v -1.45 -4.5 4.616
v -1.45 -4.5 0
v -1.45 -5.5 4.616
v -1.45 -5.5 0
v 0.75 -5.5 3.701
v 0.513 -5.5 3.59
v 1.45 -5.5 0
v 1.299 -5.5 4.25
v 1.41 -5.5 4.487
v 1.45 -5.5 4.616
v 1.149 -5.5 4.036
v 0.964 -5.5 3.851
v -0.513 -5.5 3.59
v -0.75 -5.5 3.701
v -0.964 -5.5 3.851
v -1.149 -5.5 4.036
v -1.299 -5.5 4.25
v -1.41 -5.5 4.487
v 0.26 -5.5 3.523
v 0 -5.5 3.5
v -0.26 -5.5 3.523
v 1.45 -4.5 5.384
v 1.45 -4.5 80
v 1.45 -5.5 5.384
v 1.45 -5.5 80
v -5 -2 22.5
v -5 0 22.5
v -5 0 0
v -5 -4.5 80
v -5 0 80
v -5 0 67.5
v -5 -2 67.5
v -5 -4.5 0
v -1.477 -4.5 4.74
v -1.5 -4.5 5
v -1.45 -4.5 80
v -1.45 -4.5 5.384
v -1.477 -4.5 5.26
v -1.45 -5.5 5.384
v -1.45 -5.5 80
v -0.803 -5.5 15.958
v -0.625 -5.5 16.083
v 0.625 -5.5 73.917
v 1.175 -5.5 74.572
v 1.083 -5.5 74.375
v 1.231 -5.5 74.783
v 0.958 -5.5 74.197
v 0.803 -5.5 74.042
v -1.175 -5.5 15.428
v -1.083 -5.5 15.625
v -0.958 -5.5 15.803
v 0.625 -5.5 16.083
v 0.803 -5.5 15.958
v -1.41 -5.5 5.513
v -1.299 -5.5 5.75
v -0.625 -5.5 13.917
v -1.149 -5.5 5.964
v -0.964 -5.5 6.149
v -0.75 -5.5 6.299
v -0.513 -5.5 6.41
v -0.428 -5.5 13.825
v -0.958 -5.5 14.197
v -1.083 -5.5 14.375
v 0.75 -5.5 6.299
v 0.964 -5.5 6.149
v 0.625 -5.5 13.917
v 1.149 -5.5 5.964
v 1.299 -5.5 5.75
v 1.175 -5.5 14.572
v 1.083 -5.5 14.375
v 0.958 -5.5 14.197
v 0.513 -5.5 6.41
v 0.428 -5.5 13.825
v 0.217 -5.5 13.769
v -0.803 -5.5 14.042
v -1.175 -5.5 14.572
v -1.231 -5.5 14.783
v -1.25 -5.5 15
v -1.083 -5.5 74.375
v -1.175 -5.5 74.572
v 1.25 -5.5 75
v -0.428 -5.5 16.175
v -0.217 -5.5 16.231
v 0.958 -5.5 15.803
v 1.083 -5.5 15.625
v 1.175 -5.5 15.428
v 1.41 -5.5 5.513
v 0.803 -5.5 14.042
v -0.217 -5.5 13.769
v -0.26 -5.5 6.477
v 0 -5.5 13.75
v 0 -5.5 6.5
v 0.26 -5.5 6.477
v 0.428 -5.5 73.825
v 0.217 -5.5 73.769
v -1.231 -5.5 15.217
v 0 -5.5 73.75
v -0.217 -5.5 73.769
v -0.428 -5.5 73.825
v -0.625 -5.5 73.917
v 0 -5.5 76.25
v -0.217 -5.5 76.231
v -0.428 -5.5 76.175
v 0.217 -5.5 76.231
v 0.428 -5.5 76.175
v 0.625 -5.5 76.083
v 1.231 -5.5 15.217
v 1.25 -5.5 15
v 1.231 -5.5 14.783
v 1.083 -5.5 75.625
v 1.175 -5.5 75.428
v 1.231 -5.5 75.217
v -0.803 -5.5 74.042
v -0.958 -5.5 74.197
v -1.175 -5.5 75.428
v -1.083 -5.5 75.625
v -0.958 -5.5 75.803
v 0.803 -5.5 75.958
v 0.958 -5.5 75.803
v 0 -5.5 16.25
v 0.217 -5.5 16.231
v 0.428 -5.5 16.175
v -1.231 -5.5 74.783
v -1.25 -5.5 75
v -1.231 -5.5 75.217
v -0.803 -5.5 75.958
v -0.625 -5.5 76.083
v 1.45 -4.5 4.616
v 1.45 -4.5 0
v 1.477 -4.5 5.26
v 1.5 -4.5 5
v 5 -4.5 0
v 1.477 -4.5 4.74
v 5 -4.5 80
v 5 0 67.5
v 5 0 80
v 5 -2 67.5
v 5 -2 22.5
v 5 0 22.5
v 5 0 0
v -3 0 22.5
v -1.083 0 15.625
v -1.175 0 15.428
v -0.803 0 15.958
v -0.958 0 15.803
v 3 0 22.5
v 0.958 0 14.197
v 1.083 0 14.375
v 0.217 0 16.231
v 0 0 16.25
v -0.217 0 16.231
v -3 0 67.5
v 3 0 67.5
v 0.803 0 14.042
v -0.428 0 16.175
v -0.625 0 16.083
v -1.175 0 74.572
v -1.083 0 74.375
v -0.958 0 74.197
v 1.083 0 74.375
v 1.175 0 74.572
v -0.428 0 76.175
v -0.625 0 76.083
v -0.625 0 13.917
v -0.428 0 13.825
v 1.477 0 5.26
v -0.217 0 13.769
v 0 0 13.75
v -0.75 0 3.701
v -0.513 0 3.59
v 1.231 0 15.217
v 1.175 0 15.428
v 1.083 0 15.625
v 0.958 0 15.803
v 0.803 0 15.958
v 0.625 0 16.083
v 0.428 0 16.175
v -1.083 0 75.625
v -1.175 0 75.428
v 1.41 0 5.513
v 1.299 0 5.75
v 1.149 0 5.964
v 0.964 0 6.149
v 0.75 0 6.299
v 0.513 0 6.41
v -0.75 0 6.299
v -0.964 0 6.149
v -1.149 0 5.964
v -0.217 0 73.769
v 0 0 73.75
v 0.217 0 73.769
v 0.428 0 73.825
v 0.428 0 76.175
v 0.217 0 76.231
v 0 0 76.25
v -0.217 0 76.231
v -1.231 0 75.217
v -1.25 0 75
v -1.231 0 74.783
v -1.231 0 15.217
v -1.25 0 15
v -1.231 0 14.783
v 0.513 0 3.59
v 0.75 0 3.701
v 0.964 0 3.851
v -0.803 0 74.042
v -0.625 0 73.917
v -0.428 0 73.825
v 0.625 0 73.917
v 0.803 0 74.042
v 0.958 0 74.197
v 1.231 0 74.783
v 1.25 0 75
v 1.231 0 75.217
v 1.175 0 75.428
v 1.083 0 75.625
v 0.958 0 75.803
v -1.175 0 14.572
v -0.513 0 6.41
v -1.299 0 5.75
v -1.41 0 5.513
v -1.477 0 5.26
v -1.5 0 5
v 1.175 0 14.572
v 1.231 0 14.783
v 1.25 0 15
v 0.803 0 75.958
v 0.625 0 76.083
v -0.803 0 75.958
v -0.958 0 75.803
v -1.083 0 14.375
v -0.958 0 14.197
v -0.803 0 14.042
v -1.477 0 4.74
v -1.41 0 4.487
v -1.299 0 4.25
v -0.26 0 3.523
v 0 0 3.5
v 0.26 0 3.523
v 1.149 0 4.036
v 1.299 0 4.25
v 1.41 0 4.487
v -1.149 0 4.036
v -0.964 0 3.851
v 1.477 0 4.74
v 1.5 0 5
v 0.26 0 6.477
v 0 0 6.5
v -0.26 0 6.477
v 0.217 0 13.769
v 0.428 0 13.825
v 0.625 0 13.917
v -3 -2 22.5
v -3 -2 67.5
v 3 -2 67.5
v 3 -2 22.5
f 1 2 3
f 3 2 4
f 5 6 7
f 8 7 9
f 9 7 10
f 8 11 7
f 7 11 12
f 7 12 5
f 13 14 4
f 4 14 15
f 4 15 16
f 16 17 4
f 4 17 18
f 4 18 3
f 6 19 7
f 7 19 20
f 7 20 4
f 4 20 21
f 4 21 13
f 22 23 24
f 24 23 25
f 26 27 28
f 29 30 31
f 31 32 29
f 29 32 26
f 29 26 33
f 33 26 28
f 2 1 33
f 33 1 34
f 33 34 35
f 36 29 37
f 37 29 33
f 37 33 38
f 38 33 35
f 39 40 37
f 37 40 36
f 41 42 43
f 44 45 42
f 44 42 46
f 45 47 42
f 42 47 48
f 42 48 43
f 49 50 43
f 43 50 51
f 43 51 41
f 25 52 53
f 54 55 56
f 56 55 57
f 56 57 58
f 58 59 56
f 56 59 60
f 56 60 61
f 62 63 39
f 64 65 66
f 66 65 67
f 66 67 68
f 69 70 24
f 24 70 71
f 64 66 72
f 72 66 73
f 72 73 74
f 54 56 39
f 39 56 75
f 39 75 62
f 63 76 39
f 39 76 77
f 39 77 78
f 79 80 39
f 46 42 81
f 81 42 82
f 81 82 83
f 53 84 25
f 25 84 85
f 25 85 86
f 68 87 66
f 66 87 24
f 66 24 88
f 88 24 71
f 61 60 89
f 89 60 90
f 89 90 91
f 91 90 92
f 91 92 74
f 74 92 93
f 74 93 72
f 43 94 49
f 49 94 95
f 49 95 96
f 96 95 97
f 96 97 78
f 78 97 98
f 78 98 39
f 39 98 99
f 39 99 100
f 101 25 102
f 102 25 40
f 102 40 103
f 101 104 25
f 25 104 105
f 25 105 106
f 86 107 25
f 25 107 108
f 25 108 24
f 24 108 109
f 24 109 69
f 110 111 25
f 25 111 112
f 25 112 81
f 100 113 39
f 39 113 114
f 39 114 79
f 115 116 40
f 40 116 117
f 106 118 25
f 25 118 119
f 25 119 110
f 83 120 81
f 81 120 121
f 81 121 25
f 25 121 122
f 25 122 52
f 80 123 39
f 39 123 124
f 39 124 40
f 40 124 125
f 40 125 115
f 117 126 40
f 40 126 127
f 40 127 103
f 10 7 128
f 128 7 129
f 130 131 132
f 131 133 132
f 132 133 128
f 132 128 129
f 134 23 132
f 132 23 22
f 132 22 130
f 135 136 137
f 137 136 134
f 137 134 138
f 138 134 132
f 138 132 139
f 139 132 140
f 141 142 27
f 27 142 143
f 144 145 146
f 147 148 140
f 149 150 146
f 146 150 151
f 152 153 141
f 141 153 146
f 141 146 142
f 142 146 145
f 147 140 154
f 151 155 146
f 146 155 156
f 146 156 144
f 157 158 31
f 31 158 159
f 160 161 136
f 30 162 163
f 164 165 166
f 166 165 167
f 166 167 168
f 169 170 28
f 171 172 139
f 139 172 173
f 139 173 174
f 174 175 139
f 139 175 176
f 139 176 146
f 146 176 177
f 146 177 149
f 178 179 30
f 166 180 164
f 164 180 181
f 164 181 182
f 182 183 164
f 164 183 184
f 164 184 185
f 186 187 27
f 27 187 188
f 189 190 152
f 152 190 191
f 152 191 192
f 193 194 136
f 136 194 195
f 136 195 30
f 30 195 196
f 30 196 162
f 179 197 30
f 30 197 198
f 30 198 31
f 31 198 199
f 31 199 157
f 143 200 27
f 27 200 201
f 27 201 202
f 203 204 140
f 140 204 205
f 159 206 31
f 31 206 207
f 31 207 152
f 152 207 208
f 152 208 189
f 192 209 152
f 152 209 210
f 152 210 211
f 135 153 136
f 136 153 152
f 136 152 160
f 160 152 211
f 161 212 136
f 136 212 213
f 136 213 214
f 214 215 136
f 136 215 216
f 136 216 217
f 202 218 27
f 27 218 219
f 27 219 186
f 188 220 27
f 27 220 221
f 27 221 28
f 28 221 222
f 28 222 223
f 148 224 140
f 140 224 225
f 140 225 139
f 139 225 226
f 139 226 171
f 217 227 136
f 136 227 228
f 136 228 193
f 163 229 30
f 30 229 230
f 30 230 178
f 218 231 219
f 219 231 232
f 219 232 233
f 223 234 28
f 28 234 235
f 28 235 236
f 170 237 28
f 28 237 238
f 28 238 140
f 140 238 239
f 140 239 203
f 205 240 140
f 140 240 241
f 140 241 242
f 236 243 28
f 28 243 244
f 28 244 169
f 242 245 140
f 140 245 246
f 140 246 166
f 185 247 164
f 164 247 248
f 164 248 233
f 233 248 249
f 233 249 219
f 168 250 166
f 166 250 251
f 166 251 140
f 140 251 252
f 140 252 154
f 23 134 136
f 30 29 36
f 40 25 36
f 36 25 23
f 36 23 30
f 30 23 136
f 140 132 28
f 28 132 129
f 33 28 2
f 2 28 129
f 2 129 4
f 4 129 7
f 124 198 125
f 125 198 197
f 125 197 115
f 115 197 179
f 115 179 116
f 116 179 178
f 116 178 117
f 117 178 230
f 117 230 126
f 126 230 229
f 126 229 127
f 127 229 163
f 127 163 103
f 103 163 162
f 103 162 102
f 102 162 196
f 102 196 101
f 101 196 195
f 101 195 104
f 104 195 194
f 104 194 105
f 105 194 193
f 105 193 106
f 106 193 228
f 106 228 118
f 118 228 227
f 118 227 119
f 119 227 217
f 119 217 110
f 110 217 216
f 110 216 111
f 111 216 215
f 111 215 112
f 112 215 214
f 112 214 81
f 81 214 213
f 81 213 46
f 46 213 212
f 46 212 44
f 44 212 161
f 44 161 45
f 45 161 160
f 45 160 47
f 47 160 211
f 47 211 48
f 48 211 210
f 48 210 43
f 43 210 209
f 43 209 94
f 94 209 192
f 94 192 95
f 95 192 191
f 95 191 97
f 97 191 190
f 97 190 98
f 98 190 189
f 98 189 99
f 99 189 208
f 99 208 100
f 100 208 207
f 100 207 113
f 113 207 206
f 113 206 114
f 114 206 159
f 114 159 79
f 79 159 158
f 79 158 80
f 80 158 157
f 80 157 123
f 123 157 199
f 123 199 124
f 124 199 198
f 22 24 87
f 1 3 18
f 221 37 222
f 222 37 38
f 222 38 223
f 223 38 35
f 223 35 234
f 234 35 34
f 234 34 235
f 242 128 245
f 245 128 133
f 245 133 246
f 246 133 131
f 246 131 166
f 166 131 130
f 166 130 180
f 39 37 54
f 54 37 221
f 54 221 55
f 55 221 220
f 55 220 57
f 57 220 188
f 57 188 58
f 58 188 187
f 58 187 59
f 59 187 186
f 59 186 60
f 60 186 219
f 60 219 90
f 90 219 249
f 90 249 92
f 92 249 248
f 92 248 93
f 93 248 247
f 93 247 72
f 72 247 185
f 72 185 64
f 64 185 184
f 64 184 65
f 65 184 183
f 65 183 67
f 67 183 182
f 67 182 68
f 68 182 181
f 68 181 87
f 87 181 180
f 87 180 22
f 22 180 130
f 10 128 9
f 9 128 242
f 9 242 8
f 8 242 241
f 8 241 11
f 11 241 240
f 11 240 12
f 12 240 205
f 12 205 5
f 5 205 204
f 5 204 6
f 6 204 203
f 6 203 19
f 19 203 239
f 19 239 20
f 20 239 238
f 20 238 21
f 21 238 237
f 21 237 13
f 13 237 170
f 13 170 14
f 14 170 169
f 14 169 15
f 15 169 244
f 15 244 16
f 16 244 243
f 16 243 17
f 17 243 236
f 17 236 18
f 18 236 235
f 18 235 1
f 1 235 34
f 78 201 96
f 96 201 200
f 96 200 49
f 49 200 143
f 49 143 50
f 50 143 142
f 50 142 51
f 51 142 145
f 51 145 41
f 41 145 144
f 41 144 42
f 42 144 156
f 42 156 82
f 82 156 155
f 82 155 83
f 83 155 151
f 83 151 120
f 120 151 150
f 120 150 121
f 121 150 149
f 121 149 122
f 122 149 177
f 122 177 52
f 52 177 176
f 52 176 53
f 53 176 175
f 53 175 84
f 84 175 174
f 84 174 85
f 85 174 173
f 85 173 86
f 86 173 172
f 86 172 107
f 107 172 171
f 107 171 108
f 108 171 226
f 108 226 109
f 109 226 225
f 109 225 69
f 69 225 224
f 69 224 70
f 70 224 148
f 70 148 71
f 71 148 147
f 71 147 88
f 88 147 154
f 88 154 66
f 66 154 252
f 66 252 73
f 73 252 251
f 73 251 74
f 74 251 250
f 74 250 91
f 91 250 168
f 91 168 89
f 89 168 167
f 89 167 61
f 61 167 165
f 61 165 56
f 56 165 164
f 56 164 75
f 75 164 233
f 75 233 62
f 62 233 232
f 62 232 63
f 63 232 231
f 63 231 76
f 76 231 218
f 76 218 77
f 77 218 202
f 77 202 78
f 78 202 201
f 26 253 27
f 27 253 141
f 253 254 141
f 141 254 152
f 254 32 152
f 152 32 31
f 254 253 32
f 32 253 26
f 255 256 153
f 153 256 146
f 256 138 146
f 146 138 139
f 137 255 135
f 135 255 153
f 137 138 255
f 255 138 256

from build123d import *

# Parameters (mm, degrees)
MAIN_DEPTH             = 80
SKETCH2_R              = 1.25
SKETCH2_R_2            = 1.5
MAKERBEAMFIXHOLE_DEPTH = 6.5
SKETCH3_W              = 2
SKETCH3_H              = 45
PINHOLES_DEPTH         = 2


with BuildPart() as part:
    # Sketch1 → Main (new body)
    with BuildSketch(Plane.XY):
        Polygon((-5, 0), (5, 0), (5, -4.5), (1.45, -4.5), (1.45, -5.5), (-1.45, -5.5), (-1.45, -4.5), (-5, -4.5), align=None)
    extrude(amount=MAIN_DEPTH)

    # Sketch2 → MakerBeamFixHole (cut, through all)
    with BuildSketch(Plane(origin=(0, 0, 0), x_dir=(1, 0, 0), z_dir=(0, 1, 0))):
        with Locations((0, -75)):
            Circle(SKETCH2_R)
        with Locations((0, -15)):
            Circle(SKETCH2_R)
        with Locations((0, -5)):
            Circle(SKETCH2_R_2)
    extrude(amount=-MAKERBEAMFIXHOLE_DEPTH, mode=Mode.SUBTRACT)

    # Sketch3 → PinHoles (cut)
    with BuildSketch(Plane(origin=(0, 0, 0), x_dir=(1, 0, 0), z_dir=(0, 1, 0))):
        with Locations((-4, -45)):
            Rectangle(SKETCH3_W, SKETCH3_H)
        with Locations((4, -45)):
            Rectangle(SKETCH3_W, SKETCH3_H)
    extrude(amount=-PINHOLES_DEPTH, mode=Mode.SUBTRACT)


solid = part.part
